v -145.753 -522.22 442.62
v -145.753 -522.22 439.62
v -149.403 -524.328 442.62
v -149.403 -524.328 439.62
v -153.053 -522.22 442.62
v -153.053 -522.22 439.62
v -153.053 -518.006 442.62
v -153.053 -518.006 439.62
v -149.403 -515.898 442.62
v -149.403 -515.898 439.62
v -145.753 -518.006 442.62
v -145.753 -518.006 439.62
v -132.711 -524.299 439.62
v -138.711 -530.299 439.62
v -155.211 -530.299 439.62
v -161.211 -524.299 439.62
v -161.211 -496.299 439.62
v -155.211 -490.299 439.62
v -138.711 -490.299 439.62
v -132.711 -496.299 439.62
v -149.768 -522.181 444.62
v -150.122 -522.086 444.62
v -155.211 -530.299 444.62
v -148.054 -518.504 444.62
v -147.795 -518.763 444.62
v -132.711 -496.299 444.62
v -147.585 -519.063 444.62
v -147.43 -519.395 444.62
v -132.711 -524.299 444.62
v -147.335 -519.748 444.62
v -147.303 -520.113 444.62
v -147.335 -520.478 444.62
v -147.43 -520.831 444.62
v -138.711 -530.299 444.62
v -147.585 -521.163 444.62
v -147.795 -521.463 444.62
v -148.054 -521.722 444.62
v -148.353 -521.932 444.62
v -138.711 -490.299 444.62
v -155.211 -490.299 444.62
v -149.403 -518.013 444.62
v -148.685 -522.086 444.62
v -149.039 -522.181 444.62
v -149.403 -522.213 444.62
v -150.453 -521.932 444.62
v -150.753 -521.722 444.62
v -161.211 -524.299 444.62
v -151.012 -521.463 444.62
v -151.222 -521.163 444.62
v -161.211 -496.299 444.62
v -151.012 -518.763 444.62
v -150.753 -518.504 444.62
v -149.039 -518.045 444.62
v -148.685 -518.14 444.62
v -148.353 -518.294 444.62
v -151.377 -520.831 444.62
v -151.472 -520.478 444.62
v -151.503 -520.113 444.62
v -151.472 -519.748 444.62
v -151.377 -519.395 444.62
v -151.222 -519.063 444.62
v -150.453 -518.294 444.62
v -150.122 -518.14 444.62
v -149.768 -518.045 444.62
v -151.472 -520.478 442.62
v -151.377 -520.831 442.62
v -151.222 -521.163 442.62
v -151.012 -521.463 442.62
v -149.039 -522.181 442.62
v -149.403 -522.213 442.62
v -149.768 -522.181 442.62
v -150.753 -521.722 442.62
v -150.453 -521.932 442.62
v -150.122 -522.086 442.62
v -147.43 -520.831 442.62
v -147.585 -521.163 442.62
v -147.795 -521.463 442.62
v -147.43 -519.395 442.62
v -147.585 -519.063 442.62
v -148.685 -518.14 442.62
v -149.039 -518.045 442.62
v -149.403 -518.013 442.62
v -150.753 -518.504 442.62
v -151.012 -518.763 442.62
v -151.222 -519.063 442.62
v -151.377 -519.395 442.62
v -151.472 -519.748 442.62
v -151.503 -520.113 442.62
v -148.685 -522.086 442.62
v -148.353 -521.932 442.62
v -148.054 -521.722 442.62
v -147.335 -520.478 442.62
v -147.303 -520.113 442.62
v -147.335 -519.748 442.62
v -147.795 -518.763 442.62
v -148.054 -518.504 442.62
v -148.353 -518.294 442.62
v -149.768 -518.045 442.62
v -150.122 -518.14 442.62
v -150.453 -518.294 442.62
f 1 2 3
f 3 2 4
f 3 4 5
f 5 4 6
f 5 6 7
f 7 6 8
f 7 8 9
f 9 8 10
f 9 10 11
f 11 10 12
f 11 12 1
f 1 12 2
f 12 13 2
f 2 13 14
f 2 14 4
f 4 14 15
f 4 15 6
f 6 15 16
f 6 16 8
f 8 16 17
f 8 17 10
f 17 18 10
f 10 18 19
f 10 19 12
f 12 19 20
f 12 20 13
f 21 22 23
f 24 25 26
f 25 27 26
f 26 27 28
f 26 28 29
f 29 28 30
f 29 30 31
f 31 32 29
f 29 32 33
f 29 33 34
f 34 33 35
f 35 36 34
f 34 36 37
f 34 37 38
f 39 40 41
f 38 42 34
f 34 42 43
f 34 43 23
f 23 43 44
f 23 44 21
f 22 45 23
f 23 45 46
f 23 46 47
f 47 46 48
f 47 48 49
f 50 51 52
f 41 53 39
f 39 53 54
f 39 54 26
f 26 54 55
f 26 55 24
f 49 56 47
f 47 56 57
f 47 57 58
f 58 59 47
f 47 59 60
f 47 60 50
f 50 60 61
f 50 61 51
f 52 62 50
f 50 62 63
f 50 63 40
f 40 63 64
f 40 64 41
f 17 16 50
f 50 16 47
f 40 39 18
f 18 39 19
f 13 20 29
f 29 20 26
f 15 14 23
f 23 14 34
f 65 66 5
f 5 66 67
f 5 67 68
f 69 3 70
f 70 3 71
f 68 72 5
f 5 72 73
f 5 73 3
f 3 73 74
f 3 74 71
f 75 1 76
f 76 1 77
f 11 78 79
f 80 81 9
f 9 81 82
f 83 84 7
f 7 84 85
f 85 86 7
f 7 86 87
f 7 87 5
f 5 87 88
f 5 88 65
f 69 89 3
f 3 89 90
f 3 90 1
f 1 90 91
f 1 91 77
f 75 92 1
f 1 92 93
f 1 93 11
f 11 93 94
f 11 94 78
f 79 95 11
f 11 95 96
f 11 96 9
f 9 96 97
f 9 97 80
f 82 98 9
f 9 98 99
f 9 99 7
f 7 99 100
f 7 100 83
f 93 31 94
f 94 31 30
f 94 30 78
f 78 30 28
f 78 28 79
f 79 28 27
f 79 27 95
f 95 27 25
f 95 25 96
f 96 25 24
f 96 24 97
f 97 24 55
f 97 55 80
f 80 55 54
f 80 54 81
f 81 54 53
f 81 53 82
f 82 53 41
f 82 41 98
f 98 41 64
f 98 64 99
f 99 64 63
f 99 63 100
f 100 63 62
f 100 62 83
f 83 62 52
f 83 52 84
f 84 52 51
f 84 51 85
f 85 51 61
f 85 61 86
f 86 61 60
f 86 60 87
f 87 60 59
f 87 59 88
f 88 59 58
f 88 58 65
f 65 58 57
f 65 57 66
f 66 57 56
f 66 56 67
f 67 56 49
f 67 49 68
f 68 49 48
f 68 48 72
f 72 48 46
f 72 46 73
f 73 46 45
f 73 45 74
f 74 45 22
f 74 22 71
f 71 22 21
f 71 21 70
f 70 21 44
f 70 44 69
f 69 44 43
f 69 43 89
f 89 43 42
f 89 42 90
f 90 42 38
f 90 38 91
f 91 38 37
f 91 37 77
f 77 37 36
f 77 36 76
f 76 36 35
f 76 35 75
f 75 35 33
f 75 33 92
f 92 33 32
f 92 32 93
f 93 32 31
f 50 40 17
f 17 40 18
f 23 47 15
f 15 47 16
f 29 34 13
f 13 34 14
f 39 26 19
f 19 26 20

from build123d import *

# Parameters (mm, degrees)
SKETCH1_W           = 28.5
SKETCH1_H           = 40
BOSS_EXTRUDE1_DEPTH = 5
SKETCH2_W           = 28.5
SKETCH2_H           = 40
SKETCH2_R           = 2.1
BOSS_EXTRUDE2_DEPTH = 2
CHAMFER1_SIZE       = 6


with BuildPart() as part:
    # Sketch1 → Boss-Extrude1 (new body)
    with BuildSketch(Plane(origin=(0, 0, 444.620141885), x_dir=(-1, 0, 0), z_dir=(0, 0, -1))):
        with Locations((146.960843614, -510.298939869)):
            Rectangle(SKETCH1_W, SKETCH1_H)
        Polygon((149.40344611, -524.327662084), (153.05344611, -522.220333602), (153.05344611, -518.005676636), (149.40344611, -515.898348154), (145.75344611, -518.005676636), (145.75344611, -522.220333602), align=None, mode=Mode.SUBTRACT)
    extrude(amount=BOSS_EXTRUDE1_DEPTH)

    # Sketch2 → Boss-Extrude2 (add)
    with BuildSketch(Plane(origin=(0, 0, 444.620141885), x_dir=(-1, 0, 0), z_dir=(0, 0, -1))):
        with Locations((146.960843614, -510.298939869)):
            Rectangle(SKETCH2_W, SKETCH2_H)
        with Locations((149.40344611, -520.113005119)):
            Circle(SKETCH2_R, mode=Mode.SUBTRACT)
    extrude(amount=BOSS_EXTRUDE2_DEPTH)

    # Chamfer1
    chamfer1_edges = [part.edges().sort_by_distance(p)[0] for p in [
        (-161.210843614, -530.298939869, 442.120141885),
        (-132.710843614, -530.298939869, 442.120141885),
        (-132.710843614, -490.298939869, 442.120141885),
        (-161.210843614, -490.298939869, 442.120141885),
    ]]
    chamfer(chamfer1_edges, length=CHAMFER1_SIZE)


solid = part.part
